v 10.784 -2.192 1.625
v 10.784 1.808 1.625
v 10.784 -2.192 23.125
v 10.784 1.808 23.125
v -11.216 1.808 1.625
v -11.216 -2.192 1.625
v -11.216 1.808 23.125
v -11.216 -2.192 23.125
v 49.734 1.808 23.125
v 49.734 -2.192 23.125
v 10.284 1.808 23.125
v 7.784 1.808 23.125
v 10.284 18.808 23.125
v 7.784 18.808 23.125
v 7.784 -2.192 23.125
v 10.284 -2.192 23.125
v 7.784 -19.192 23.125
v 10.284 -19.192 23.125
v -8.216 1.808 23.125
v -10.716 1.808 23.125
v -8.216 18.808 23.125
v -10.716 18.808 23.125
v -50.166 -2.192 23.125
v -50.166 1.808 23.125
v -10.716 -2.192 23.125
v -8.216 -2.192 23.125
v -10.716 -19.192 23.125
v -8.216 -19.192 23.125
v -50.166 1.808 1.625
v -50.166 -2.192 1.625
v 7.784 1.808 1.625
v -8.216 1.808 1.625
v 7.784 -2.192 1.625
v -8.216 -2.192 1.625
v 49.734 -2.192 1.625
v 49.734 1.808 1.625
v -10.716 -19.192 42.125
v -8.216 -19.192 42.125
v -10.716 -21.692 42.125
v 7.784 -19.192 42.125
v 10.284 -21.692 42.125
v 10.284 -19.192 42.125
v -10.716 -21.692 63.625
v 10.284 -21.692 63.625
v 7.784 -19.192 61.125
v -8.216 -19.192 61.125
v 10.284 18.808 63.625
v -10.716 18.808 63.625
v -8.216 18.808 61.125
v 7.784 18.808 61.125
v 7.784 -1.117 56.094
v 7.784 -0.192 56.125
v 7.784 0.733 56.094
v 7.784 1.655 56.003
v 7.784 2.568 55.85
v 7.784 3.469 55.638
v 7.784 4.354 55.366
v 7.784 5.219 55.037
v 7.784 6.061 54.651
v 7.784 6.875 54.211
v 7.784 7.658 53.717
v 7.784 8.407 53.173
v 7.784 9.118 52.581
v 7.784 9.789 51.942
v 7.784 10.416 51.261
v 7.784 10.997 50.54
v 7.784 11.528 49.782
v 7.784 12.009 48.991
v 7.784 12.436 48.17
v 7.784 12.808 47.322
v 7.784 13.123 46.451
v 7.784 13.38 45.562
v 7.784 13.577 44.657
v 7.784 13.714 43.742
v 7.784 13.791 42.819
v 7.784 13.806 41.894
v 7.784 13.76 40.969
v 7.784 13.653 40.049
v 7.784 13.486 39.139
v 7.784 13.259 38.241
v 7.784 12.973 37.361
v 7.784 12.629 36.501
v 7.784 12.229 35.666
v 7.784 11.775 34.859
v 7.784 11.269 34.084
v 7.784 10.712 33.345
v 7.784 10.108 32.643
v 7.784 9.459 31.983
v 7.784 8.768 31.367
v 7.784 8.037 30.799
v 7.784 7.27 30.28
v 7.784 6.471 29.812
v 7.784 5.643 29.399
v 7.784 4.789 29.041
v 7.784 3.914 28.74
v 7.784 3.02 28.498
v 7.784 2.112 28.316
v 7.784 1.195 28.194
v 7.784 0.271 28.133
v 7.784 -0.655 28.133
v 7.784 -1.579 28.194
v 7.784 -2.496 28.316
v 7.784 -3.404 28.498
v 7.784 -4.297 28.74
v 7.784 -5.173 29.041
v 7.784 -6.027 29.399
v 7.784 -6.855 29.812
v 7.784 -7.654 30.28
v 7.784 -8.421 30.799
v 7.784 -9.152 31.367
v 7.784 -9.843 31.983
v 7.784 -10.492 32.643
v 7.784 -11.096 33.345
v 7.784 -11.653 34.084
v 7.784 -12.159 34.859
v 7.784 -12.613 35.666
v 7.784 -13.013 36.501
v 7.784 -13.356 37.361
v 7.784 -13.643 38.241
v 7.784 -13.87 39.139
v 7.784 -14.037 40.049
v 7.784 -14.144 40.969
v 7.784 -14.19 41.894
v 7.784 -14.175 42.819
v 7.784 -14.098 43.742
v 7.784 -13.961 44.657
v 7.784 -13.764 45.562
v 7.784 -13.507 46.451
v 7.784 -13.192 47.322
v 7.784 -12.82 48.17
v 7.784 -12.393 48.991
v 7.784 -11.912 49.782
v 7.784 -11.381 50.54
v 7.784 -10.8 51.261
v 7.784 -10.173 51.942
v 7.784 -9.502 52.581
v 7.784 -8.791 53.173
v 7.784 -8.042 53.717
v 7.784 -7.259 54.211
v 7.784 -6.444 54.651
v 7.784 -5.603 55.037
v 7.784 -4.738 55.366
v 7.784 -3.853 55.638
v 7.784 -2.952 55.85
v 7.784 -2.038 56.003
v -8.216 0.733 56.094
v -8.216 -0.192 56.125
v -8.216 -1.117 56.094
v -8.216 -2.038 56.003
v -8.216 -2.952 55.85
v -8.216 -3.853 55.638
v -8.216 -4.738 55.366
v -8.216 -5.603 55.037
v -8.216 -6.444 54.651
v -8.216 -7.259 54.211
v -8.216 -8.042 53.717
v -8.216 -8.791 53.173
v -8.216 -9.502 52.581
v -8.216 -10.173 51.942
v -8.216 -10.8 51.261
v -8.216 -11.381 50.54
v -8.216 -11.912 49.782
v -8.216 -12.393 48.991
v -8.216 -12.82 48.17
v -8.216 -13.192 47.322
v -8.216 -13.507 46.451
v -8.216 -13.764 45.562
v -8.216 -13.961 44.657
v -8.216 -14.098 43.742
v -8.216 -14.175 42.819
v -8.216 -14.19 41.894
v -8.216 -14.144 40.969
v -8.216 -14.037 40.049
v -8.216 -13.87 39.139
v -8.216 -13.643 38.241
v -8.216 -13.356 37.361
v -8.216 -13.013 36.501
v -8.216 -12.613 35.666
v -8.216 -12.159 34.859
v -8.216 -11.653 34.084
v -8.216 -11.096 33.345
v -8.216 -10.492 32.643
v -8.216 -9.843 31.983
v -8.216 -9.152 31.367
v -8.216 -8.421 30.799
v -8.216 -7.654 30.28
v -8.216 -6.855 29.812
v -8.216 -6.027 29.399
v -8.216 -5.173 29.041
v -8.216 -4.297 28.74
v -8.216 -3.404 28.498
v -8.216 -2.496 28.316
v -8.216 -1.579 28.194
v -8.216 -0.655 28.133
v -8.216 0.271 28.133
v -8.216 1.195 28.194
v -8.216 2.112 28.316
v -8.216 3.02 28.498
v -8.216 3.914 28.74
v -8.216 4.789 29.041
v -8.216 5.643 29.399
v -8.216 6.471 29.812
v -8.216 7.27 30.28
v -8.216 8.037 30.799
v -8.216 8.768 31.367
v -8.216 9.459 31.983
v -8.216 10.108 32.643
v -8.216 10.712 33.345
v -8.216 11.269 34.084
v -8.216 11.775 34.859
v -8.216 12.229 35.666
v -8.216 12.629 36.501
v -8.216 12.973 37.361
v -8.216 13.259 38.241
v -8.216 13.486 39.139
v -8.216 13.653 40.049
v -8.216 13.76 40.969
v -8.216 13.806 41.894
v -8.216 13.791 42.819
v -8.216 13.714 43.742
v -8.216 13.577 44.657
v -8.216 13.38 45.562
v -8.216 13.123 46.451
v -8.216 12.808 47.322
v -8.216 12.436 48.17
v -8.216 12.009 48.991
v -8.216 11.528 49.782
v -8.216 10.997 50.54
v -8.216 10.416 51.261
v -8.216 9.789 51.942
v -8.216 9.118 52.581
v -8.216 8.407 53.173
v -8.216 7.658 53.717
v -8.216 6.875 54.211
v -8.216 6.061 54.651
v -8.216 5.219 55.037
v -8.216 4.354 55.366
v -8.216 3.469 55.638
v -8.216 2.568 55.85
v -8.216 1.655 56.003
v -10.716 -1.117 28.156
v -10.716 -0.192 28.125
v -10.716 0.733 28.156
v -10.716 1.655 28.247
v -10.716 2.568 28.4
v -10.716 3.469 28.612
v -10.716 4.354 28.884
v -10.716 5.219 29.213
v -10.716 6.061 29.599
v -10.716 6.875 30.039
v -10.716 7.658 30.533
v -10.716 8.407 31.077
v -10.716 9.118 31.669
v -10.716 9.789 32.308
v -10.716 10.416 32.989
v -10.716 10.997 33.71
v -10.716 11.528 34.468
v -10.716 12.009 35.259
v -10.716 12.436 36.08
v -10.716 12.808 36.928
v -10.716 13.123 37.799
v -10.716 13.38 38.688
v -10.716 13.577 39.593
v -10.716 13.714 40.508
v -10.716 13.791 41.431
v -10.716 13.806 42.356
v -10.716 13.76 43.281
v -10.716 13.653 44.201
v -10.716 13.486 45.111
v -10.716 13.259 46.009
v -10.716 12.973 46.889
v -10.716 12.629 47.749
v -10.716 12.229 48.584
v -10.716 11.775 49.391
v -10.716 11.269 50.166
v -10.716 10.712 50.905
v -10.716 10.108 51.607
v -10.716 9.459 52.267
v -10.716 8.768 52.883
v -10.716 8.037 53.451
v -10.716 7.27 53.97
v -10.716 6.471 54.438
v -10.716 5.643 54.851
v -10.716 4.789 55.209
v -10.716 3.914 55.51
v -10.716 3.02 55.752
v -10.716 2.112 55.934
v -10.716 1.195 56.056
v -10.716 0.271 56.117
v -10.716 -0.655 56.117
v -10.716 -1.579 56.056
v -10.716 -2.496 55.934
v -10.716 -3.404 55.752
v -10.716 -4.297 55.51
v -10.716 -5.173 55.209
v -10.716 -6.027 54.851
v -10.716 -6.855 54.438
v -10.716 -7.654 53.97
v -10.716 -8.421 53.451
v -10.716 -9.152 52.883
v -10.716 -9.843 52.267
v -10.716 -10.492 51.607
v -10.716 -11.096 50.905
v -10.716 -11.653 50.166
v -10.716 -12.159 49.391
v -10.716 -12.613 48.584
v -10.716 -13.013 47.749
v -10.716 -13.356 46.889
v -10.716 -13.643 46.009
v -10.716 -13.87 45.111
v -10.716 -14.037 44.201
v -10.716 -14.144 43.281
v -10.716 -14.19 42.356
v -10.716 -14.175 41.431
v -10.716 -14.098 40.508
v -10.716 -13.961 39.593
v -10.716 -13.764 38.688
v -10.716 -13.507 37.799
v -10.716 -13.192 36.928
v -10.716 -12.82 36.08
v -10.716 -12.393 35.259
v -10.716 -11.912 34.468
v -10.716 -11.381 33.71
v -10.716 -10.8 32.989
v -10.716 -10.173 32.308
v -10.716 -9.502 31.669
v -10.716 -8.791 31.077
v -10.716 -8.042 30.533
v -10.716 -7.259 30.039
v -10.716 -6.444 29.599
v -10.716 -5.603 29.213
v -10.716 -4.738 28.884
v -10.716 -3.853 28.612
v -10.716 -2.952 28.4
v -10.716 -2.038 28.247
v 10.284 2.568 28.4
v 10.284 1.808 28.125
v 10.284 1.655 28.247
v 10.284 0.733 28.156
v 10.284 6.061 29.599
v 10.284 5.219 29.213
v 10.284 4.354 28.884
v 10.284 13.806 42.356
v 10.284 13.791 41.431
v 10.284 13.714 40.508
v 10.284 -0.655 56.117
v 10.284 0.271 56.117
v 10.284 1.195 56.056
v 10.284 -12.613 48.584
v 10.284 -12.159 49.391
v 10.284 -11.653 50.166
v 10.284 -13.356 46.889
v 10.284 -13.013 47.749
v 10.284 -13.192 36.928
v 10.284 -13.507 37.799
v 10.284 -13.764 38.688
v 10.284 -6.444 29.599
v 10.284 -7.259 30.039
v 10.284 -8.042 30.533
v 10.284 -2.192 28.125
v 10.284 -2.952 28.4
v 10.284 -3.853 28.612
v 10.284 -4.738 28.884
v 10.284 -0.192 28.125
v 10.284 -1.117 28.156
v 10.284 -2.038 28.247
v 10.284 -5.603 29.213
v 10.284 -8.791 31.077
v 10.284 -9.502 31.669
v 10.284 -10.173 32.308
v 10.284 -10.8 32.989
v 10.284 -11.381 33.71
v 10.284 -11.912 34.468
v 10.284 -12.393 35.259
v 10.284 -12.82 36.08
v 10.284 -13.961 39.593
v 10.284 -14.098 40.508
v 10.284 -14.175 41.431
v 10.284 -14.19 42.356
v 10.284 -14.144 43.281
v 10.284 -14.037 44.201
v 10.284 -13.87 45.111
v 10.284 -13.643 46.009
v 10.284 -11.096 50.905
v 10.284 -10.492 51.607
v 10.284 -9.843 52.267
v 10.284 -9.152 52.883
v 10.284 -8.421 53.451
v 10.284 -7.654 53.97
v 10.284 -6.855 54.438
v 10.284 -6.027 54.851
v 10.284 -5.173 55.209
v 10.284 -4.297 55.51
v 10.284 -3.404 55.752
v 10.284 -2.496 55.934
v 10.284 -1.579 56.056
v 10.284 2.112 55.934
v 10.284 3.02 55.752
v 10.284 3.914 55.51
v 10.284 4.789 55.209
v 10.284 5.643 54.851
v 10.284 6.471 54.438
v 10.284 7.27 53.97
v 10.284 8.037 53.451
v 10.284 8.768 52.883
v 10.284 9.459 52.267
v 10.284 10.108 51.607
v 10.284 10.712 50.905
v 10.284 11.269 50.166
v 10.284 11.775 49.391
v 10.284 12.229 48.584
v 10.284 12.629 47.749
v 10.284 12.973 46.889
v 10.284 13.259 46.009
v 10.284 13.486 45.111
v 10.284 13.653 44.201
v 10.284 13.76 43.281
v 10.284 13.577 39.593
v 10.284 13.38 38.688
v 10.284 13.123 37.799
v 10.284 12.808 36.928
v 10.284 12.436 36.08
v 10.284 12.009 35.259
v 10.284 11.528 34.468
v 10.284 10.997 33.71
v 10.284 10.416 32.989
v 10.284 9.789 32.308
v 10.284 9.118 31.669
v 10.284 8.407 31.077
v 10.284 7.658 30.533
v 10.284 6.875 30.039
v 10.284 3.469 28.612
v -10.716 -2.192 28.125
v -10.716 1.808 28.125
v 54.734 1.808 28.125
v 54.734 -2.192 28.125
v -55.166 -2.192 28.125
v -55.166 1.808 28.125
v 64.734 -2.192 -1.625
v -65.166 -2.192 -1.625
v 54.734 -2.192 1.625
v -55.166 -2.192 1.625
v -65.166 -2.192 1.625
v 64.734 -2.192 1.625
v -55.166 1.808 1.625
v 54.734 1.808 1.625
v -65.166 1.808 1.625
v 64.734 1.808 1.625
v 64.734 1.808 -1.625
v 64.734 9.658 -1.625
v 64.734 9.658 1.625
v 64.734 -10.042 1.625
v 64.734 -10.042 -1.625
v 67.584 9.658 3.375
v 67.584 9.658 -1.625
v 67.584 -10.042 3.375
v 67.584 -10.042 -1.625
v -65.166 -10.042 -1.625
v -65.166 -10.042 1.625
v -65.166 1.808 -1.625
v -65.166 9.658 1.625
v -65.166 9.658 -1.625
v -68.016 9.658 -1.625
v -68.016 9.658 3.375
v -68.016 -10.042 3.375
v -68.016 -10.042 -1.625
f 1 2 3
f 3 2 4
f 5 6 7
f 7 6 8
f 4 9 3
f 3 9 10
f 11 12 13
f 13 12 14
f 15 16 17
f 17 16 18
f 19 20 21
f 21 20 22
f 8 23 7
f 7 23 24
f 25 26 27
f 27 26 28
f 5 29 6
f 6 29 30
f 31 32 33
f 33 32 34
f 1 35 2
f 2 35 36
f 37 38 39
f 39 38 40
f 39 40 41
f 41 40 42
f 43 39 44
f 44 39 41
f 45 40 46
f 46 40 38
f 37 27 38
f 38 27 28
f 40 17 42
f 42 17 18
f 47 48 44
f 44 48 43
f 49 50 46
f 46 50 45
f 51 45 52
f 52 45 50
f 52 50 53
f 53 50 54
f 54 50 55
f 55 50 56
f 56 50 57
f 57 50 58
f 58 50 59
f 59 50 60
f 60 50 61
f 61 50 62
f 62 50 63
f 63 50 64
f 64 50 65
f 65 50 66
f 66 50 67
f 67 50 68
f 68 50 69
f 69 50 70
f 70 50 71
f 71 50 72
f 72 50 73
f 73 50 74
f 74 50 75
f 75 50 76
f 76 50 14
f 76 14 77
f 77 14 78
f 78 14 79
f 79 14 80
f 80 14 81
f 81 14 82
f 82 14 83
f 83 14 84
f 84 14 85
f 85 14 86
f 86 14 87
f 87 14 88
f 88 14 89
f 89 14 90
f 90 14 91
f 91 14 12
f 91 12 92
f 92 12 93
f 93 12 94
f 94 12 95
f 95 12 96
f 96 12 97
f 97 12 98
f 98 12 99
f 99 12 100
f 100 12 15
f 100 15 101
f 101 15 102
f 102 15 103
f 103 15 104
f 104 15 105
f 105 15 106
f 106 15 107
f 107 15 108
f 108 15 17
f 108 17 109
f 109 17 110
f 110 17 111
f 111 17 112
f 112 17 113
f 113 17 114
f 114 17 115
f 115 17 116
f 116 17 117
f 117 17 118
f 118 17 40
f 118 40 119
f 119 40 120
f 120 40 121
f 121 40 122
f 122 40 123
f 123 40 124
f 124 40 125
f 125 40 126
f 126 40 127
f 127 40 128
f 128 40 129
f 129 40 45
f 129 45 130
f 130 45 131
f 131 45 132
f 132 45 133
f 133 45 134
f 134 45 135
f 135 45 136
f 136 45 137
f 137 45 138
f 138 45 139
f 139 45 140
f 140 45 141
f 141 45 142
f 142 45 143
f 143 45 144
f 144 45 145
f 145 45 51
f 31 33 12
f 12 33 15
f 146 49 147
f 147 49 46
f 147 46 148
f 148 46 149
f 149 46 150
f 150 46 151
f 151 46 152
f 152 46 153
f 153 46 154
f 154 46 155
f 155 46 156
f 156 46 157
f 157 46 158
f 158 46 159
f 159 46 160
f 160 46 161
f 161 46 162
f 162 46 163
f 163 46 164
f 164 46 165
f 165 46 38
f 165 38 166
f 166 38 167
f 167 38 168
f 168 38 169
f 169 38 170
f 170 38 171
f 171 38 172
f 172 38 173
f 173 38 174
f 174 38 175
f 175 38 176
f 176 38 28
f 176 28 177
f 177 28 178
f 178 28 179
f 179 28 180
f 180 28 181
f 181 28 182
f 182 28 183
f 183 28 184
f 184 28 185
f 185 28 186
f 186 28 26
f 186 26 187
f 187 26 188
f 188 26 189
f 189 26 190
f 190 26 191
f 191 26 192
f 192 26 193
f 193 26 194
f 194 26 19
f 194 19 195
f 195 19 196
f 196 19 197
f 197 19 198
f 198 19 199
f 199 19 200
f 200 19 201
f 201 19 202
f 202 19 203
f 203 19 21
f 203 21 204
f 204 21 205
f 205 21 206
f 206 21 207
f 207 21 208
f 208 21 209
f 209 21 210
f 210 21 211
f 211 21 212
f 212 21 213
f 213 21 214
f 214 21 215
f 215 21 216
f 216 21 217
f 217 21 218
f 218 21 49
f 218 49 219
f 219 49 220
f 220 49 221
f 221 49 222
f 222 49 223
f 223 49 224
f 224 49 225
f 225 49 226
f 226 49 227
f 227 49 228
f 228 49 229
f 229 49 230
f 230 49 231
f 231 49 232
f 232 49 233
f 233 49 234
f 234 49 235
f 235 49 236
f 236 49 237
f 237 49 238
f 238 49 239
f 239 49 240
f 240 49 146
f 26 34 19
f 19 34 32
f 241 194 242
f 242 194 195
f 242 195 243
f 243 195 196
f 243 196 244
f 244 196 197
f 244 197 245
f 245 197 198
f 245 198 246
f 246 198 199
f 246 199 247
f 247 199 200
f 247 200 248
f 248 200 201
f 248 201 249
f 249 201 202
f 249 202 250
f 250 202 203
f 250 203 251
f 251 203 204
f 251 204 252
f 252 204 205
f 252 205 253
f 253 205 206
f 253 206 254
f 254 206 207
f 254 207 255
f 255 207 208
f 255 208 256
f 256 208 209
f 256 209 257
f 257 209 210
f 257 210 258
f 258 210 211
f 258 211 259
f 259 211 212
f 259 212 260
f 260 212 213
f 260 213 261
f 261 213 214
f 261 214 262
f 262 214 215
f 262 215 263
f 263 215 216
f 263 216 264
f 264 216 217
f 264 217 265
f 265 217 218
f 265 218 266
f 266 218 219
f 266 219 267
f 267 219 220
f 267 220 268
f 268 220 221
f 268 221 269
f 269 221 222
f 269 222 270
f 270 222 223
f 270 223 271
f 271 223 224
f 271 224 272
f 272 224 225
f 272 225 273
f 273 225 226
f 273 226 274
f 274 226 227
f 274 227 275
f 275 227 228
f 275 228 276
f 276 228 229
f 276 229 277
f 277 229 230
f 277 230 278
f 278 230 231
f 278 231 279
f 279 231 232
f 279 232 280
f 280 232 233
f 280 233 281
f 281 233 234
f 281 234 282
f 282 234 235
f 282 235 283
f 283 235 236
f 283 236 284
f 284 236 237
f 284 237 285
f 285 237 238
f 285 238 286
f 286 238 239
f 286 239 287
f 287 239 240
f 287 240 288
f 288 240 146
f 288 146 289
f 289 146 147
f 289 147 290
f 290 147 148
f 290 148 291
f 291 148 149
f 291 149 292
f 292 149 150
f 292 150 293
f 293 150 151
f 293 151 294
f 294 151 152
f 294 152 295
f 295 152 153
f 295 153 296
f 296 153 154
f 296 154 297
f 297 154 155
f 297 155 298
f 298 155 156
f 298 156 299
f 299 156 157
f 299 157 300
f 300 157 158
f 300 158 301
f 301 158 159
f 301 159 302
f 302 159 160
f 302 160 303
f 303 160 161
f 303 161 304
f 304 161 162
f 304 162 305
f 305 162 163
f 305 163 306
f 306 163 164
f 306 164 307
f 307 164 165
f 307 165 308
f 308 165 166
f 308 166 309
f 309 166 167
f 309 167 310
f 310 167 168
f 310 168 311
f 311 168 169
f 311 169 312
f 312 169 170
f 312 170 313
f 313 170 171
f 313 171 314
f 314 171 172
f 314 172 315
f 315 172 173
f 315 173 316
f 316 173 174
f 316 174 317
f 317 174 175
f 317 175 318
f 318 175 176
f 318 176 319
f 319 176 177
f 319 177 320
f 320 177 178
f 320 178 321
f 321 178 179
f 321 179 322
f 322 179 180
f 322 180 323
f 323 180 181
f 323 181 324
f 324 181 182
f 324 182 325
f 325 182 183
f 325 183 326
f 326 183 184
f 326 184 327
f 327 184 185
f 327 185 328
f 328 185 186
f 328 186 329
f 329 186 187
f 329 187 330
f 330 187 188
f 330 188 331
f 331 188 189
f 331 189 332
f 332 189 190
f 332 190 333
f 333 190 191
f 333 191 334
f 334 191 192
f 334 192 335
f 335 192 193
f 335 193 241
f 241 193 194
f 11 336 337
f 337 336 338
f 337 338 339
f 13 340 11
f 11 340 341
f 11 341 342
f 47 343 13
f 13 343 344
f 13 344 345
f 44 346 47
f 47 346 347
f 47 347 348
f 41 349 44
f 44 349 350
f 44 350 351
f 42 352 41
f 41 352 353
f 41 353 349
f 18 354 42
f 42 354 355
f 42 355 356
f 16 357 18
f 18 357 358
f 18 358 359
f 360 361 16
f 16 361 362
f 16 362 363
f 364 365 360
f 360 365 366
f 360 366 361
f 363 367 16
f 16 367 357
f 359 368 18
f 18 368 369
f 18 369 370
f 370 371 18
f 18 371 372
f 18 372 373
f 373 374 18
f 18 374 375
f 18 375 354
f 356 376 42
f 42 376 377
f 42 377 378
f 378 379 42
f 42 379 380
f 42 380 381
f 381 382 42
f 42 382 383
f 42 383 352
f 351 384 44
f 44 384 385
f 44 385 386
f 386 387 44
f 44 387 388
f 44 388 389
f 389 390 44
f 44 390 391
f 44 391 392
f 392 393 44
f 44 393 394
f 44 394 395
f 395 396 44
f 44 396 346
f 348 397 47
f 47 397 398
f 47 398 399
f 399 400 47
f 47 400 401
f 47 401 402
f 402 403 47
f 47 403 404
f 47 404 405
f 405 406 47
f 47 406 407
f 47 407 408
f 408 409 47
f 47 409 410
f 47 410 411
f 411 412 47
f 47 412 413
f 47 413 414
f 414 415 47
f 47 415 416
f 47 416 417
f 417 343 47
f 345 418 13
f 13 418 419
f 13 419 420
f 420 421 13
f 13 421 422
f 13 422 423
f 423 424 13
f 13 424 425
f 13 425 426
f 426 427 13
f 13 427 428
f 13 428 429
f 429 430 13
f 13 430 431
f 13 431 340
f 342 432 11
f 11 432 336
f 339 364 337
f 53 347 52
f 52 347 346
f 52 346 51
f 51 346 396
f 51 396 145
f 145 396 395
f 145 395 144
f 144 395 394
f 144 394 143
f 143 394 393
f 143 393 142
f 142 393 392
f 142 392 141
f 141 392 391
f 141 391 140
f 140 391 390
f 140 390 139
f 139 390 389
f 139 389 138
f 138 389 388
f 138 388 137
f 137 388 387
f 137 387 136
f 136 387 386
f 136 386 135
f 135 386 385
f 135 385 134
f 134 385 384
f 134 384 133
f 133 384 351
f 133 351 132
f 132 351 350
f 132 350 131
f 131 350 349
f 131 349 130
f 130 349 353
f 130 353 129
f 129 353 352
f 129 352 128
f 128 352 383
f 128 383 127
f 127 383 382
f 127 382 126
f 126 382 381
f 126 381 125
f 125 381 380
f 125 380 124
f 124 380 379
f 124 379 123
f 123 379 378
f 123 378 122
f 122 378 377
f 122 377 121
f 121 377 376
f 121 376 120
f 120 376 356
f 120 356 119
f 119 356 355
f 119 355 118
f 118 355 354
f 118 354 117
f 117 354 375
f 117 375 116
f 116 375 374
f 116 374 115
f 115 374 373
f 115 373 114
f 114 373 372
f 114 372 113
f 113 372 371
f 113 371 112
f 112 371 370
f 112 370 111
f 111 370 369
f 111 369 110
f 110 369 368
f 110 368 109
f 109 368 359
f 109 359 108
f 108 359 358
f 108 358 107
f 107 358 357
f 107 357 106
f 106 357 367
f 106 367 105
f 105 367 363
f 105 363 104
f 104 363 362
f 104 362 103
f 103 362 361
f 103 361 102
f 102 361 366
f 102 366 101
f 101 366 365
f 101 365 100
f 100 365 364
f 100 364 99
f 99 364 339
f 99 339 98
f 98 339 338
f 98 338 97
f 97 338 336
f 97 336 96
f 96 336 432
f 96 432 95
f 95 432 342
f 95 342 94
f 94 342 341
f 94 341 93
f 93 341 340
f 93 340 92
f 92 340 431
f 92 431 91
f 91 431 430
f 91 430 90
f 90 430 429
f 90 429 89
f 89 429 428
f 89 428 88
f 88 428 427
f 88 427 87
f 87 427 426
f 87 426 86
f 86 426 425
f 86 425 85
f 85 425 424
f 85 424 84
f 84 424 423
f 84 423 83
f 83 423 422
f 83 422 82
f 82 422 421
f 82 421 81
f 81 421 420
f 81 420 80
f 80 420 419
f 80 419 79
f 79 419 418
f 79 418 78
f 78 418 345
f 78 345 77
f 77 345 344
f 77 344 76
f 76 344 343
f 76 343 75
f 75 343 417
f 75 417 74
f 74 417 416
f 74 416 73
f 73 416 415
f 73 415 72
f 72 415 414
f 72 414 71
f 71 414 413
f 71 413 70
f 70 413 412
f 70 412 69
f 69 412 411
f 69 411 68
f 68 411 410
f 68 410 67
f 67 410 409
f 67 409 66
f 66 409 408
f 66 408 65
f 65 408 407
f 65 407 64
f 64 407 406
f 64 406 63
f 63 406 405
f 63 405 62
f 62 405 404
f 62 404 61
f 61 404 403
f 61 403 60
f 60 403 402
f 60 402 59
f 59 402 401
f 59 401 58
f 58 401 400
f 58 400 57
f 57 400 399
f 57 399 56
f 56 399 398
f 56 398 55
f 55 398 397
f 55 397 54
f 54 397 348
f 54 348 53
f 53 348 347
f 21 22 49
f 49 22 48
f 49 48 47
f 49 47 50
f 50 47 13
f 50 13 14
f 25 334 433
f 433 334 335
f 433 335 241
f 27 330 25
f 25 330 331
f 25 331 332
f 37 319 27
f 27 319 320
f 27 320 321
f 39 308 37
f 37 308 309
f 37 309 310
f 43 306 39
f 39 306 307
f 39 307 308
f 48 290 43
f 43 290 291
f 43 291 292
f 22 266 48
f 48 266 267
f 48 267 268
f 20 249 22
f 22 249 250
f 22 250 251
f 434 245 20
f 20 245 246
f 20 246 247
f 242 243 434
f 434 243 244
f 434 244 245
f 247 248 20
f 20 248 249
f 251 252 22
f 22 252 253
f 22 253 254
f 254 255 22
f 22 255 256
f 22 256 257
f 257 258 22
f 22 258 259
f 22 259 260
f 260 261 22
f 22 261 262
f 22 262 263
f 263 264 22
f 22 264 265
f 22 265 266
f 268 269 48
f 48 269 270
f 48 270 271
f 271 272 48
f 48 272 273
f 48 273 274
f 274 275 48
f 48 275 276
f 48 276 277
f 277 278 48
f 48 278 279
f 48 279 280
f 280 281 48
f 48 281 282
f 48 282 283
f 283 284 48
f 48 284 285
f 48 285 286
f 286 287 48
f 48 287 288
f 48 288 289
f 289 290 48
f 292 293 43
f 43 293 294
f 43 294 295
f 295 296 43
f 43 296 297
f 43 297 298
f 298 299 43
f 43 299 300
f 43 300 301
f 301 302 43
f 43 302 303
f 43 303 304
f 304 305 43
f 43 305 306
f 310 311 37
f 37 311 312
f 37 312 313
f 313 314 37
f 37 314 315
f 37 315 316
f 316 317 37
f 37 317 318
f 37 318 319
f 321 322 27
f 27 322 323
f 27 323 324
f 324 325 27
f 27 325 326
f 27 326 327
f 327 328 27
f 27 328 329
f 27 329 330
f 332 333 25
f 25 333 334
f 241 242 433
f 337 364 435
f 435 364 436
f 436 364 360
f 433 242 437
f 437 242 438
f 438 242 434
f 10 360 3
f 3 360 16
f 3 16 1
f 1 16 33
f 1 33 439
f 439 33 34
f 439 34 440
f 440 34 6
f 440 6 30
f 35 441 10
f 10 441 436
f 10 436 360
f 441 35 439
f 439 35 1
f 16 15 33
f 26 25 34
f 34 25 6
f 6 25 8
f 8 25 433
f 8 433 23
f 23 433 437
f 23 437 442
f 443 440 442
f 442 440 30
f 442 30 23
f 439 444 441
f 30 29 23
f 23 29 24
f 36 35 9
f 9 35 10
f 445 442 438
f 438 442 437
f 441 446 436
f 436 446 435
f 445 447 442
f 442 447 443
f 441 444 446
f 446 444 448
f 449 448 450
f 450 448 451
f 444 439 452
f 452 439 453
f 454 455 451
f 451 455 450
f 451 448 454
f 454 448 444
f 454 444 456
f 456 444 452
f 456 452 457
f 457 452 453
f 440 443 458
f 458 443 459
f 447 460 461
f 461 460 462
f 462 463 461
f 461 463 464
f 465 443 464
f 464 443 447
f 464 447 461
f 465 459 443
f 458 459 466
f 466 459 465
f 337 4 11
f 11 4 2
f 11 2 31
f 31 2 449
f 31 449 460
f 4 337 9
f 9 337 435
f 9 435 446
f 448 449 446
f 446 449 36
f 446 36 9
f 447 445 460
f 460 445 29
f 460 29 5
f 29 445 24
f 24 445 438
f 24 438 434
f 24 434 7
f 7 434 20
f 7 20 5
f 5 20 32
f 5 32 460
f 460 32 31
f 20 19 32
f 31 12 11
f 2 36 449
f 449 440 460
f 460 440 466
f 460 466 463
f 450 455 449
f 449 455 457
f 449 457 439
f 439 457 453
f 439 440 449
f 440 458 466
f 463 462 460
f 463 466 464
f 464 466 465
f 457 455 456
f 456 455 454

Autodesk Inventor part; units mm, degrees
ref_plane "YZ Plane" through (0, 0, 0) normal (1, 0, 0) x (0, 1, 0)
ref_plane "XZ Plane" through (0, 0, 0) normal (0, 1, 0) x (-1, 0, 0)
ref_plane "XY Plane" through (0, 0, 0) normal (0, 0, 1) x (1, 0, 0)
sketch "Skizze1" plane through (0, 0, 0) normal (0, 0, 1) x (1, 0, 0)
  line L0 (-68.016, 1.808) -> (67.584, 1.808)
  line L1 (67.584, 1.808) -> (67.584, -2.192)
  line L2 (67.584, -2.192) -> (-68.016, -2.192)
  line L3 (-68.016, -2.192) -> (-68.016, 1.808)
  line L4 (-68.016, 1.808) -> (67.584, -2.192) construction
  line L5 (67.584, 1.808) -> (-68.016, -2.192) construction
  point P0 (0, 0)
  point P1 (-0.216, -0.192)
  point P2 (-0.216, -0.192)
  dimension "d0" = 135.6
  dimension "d1" = 4
extrude "Extrusion1" add sketch "Skizze1" along normal mid plane 3.25
ref_plane "Arbeitsebene1" through (-68.016, -0.192, 1.625) normal (0, -1, 0) x (1, 0, 0)
sketch "Skizze2" plane through (-68.016, -0.192, 1.625) normal (0, -1, 0) x (1, 0, 0)
  line L0 (0, -3.25) -> (0, 0) projected
  line L1 (0, -3.25) -> (135.6, -3.25) projected
  line L2 (0, 0) -> (2.85, 0)
  line L3 (2.85, 0) -> (2.85, -3.25)
  line L4 (2.85, -3.25) -> (0, -3.25)
  line L5 (0, -3.25) -> (0, 0)
  line L6 (0, 0) -> (0, 1.75)
  line L7 (0, 1.75) -> (2.85, 0)
  line L8 (135.6, -3.25) -> (135.6, 0) projected
  line L9 (135.6, 0) -> (132.75, 0)
  line L10 (132.75, 0) -> (132.75, -3.25)
  line L11 (132.75, -3.25) -> (135.6, -3.25)
  line L12 (135.6, -3.25) -> (135.6, 0)
  line L13 (135.6, 0) -> (135.6, 1.75)
  line L14 (135.6, 1.75) -> (132.75, 0)
  point P0 (68.016, -1.625)
  dimension "d4" = 2.85
  dimension "d5" = 1.75
  dimension "d6" = 2.85
extrude "Extrusion2" add sketch "Skizze2" along normal mid plane 19.7
sketch "Skizze7" plane through (0, 0, 1.625) normal (0, 0, 1) x (1, 0, 0)
  line L0 (-65.166, 9.658) -> (-65.166, 1.808) projected
  line L1 (-65.166, 1.808) -> (-55.166, 1.808)
  line L2 (64.734, 1.808) -> (-65.166, 1.808) projected
  line L3 (64.734, -2.192) -> (-65.166, -2.192) projected
  line L4 (64.734, -2.192) -> (54.734, -2.192)
  line L5 (-55.166, 1.808) -> (54.734, 1.808)
  line L6 (54.734, 1.808) -> (54.734, -2.192)
  line L7 (54.734, -2.192) -> (-55.166, -2.192)
  line L8 (-55.166, -2.192) -> (-55.166, 1.808)
  point P0 (0, 0)
  dimension "d27" = 10
  dimension "d28" = 10
extrude "Extrusion7" add sketch "Skizze7" along normal blind 26.5
sketch "Skizze8" plane through (0, 0, 1.625) normal (0, 0, 1) x (1, 0, 0)
  line L0 (-65.166, 1.808) -> (-50.166, 1.808)
  line L1 (-65.166, 1.808) -> (64.734, 1.808) projected
  line L2 (64.734, -2.192) -> (-65.166, -2.192) projected
  line L3 (64.734, -2.192) -> (49.734, -2.192)
  line L4 (-50.166, 1.808) -> (49.734, 1.808)
  line L5 (49.734, 1.808) -> (49.734, -2.192)
  line L6 (49.734, -2.192) -> (-50.166, -2.192)
  line L7 (-50.166, -2.192) -> (-50.166, 1.808)
  point P0 (0, 0)
  dimension "d31" = 15
  dimension "d32" = 15
extrude "Extrusion8" cut sketch "Skizze8" along normal blind 21.5
ref_plane "Arbeitsebene2" through (-0.216, -10.042, -1.625) normal (-1, 0, 0) x (0, 0, 1)
sketch "Skizze9" plane through (-0.216, -10.042, -1.625) normal (-1, 0, 0) x (0, 0, 1)
  line L0 (24.75, 11.85) -> (29.75, 11.85)
  line L1 (29.75, 11.85) -> (29.75, 7.85)
  line L2 (29.75, 7.85) -> (24.75, 7.85)
  line L3 (24.75, 7.85) -> (24.75, 11.85)
  point P0 (1.625, 10.042)
extrude "Extrusion9" cut sketch "Skizze9" along normal mid plane 14
sketch "Skizze17" plane through (-0.216, -10.042, -1.625) normal (-1, 0, 0) x (0, 0, 1)
  line L0 (24.75, 11.85) -> (24.75, 28.85) projected
  line L1 (62.75, -9.15) -> (62.75, 28.85) projected
  line L2 (24.75, 28.85) -> (62.75, 28.85)
  line L3 (62.75, 28.85) -> (62.75, -9.15)
  line L4 (62.75, -9.15) -> (24.75, -9.15)
  line L5 (24.75, -9.15) -> (24.75, 28.85)
  circle A0 centre (43.75, 9.85) radius 14
  point P0 (1.625, 10.042)
extrude "Extrusion19" add sketch "Skizze17" along normal mid plane 21
sketch "Skizze19" plane through (-0.216, -10.042, -1.625) normal (-1, 0, 0) x (0, 0, 1)
  line L0 (24.75, 28.85) -> (24.75, 11.85) projected
  line L1 (24.75, -9.15) -> (62.75, -9.15) projected
  line L2 (24.75, 28.85) -> (62.75, 28.85)
  line L3 (62.75, 28.85) -> (62.75, -9.15)
  line L4 (62.75, -9.15) -> (24.75, -9.15)
  line L5 (24.75, -9.15) -> (24.75, 28.85)
  point P0 (1.625, 10.042)
  point P1 (24.75, 11.85)
extrude "Extrusion20" cut sketch "Skizze19" along normal mid plane 16
sketch "Skizze20" plane through (10.284, -19.192, 61.125) normal (0, 0, 1) x (1, 0, 0)
  line L0 (0, 38) -> (0, 0) projected
  line L1 (0, 38) -> (-21, 38)
  line L2 (-21, 38) -> (-21, 0)
  line L3 (-21, 0) -> (0, 0)
  line L4 (0, 0) -> (0, 38)
  point P0 (-10.284, 19.192)
extrude "Extrusion21" add sketch "Skizze20" along normal blind 2.5
sketch "Skizze21" plane through (7.784, -19.192, 23.125) normal (0, -1, 0) x (1, 0, 0)
  line L0 (-18.5, 5) -> (-18.5, 33) projected
  line L1 (2.5, 40.5) -> (-18.5, 40.5)
  line L2 (-18.5, 40.5) -> (-18.5, 19)
  line L3 (-18.5, 19) -> (2.5, 19)
  line L4 (2.5, 19) -> (2.5, 40.5)
  point P0 (-7.784, -23.125)
extrude "Extrusion22" add sketch "Skizze21" along normal blind 2.5
sketch "Skizze22" plane through (0, 0, 23.125) normal (0, 0, -1) x (-1, 0, 0)
  line L0 (-54.734, 1.808) -> (-10.284, 1.808) projected
  line L1 (-10.284, 1.808) -> (-7.784, 1.808)
  line L2 (-7.784, 18.808) -> (-7.784, -19.192) projected
  line L3 (-10.284, 1.808) -> (-7.784, 1.808) construction
  line L4 (-10.284, -2.192) -> (-54.734, -2.192) projected
  line L5 (-7.784, 1.808) -> (-10.784, 1.808)
  line L6 (-10.784, 1.808) -> (-10.784, -2.192)
  line L7 (-10.784, -2.192) -> (-7.784, -2.192)
  line L8 (-7.784, -2.192) -> (-7.784, 1.808)
  line L9 (10.716, 18.808) -> (10.716, -21.692) projected
  line L10 (10.716, -2.192) -> (8.216, -2.192)
  line L11 (8.216, -2.192) -> (11.216, -2.192)
  line L12 (11.216, -2.192) -> (11.216, 1.808)
  line L13 (11.216, 1.808) -> (8.216, 1.808)
  line L14 (8.216, 1.808) -> (8.216, -2.192)
  point P0 (0, 0)
  dimension "d79" = 2.5
  dimension "d80" = 0
  dimension "d81" = 3
  dimension "d82" = 2.5
  dimension "d83" = 3
extrude "Extrusion23" add sketch "Skizze22" along normal up to surface (24.75 mm away)
properties part number "2024_09_24_Holder_Power_sensor"
